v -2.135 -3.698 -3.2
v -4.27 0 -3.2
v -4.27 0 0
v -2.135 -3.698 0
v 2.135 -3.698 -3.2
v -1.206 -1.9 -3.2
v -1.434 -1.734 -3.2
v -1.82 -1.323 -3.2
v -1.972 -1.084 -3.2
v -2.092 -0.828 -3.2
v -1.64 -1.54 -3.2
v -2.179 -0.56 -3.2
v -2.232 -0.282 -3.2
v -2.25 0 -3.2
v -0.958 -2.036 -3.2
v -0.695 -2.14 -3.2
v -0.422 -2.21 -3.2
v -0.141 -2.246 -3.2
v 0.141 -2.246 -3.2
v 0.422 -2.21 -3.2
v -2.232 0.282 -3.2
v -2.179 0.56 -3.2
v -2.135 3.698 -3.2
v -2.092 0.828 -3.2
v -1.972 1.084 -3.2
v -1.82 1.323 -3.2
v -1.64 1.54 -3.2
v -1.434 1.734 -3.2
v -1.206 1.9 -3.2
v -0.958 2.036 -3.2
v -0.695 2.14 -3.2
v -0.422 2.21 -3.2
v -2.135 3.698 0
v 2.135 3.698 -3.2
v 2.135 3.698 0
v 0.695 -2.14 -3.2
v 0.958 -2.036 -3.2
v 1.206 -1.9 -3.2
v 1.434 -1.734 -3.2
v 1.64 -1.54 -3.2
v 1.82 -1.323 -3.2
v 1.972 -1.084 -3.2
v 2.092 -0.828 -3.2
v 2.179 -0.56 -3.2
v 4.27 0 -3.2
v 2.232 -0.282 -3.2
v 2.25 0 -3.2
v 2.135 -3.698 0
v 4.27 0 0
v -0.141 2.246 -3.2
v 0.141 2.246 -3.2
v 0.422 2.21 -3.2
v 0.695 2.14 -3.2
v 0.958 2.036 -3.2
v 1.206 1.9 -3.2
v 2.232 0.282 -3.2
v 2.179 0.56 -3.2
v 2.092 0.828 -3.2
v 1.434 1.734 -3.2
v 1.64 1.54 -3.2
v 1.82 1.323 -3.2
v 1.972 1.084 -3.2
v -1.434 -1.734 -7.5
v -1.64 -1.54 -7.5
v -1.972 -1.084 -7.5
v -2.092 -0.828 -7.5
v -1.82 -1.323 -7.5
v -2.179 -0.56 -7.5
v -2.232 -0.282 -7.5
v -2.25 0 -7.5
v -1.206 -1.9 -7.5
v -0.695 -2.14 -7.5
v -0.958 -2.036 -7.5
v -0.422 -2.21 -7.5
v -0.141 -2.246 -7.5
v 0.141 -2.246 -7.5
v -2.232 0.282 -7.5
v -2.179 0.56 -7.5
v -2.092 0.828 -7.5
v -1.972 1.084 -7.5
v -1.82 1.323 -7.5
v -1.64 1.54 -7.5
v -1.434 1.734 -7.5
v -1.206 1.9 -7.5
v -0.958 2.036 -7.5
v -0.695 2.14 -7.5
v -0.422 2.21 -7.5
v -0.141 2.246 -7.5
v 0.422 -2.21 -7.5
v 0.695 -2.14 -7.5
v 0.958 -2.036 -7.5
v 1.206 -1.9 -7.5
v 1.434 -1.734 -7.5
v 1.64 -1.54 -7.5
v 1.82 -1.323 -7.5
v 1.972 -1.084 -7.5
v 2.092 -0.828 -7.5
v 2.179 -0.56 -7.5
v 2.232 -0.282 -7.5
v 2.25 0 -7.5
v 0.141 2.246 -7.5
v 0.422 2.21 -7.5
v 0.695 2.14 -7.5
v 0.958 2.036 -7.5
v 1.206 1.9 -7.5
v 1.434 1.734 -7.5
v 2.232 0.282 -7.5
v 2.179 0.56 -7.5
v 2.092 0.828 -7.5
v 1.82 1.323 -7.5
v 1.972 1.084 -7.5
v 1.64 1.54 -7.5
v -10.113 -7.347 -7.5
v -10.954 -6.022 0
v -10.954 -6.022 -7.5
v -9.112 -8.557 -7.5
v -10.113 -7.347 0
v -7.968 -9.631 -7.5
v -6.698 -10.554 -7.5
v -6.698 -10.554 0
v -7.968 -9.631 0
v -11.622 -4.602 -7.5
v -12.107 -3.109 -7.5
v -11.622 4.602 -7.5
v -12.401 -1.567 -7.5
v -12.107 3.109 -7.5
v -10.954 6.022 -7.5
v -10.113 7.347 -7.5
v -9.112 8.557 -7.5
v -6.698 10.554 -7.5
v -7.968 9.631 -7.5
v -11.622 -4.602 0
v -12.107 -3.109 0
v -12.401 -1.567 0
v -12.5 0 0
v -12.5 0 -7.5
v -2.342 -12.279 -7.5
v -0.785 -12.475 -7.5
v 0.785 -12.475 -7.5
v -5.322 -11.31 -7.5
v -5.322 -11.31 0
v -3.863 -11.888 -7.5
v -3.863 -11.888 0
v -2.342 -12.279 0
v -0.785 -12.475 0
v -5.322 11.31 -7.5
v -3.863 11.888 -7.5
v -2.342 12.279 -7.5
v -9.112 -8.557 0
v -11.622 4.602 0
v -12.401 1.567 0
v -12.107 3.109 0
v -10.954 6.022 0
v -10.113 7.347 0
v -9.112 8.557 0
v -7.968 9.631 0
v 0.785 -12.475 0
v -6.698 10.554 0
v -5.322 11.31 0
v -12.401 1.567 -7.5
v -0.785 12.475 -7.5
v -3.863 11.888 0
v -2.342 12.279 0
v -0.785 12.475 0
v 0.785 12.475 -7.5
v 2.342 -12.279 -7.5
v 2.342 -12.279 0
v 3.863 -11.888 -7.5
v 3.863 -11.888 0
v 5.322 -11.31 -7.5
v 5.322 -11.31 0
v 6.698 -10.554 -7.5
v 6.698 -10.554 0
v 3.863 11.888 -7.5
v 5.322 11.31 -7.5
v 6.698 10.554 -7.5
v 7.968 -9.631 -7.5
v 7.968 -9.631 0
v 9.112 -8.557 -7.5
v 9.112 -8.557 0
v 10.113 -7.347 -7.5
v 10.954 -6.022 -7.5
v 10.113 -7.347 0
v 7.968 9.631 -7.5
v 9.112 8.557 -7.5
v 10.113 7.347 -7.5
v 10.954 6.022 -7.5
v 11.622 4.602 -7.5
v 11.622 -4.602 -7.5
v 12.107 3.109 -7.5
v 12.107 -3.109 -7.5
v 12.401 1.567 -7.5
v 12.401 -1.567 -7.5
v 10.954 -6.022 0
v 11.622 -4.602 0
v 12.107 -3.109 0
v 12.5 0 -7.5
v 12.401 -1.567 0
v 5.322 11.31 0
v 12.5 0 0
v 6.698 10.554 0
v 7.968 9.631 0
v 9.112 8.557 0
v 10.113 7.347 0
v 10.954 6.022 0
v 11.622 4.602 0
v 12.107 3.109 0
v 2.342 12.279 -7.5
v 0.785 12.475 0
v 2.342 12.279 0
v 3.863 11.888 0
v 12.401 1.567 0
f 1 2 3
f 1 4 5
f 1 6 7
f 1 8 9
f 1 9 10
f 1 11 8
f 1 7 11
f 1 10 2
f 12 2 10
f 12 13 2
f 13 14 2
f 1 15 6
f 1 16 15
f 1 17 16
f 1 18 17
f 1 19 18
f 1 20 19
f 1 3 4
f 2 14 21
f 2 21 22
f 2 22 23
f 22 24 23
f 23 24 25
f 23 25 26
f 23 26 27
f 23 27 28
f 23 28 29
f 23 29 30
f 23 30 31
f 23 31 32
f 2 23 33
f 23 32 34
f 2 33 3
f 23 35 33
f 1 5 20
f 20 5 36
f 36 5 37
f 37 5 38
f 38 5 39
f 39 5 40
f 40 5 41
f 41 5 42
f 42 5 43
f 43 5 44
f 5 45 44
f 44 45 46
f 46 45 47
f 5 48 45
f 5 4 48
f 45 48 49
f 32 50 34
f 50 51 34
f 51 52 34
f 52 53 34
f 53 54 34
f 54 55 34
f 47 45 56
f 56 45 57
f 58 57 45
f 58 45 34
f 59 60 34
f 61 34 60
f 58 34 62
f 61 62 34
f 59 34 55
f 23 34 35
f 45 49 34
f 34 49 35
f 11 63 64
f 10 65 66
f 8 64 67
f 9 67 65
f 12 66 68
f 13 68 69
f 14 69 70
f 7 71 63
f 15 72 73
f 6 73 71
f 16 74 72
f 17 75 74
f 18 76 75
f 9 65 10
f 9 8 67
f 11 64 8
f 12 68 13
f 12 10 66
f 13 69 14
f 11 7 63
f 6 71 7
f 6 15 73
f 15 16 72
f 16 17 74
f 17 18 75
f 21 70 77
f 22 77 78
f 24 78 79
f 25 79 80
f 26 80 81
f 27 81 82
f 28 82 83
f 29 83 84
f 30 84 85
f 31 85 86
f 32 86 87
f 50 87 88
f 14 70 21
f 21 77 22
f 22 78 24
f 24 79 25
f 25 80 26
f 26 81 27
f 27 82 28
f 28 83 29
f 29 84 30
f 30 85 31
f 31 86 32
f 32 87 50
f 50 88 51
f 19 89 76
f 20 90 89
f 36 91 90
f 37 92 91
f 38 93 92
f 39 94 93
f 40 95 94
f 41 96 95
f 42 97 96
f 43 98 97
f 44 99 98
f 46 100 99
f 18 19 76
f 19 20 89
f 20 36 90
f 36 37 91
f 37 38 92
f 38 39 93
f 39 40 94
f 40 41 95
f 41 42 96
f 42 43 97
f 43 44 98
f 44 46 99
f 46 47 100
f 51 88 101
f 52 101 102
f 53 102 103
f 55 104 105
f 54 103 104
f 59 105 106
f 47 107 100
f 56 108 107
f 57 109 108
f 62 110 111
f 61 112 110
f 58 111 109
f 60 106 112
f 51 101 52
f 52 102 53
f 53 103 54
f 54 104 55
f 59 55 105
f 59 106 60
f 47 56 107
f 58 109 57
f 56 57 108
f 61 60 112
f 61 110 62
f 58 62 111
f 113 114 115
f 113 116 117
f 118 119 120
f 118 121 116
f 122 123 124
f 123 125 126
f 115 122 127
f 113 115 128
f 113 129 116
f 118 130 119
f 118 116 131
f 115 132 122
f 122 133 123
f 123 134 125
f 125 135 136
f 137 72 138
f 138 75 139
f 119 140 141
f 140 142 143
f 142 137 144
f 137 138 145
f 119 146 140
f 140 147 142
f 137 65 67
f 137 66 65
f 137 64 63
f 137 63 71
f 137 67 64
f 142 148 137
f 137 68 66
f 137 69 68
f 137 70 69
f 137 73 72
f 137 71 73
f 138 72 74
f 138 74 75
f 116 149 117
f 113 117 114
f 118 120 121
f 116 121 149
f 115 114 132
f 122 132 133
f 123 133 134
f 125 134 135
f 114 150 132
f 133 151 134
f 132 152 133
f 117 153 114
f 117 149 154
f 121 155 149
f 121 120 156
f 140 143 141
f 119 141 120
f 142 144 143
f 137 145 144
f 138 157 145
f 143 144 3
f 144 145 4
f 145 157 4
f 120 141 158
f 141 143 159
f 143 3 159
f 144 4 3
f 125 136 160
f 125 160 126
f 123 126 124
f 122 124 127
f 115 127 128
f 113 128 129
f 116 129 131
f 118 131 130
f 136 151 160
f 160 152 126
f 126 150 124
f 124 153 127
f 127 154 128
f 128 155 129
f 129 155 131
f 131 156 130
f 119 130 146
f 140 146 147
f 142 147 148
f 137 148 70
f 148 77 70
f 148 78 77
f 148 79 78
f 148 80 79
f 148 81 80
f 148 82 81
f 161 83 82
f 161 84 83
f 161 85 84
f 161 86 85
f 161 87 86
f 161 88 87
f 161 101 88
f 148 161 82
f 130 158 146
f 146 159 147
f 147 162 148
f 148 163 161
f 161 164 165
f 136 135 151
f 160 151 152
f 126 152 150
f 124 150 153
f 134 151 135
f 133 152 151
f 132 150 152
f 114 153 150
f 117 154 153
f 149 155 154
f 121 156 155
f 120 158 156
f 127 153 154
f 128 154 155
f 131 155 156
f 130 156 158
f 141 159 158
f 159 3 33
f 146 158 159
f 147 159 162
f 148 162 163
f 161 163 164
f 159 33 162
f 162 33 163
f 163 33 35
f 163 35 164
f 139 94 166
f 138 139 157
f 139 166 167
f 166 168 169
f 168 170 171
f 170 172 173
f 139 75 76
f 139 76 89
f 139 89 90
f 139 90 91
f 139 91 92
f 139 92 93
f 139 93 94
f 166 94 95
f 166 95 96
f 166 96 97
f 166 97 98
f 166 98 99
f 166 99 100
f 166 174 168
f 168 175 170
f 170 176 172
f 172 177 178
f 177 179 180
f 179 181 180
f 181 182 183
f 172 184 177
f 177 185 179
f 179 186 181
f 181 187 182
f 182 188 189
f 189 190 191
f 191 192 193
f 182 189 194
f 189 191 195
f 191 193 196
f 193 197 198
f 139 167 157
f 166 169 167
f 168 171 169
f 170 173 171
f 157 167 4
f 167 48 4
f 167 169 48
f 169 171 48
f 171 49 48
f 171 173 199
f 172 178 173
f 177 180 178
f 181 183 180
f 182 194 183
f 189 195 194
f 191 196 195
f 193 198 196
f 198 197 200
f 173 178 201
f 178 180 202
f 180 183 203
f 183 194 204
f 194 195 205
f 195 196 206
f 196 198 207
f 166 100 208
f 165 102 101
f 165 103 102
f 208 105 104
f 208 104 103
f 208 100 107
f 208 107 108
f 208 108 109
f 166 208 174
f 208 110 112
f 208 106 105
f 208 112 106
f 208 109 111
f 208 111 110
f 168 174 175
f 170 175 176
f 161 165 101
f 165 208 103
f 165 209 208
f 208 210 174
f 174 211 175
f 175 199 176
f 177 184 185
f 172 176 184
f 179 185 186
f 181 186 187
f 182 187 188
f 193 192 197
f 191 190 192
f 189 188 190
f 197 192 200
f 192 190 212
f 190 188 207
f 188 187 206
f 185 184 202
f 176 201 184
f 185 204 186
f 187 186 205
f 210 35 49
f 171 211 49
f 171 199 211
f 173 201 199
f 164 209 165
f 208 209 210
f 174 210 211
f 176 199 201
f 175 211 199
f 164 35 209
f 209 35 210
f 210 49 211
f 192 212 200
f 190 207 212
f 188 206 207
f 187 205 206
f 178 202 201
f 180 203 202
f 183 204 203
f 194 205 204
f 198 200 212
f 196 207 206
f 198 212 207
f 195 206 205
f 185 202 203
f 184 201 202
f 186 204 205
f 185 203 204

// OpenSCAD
$fn = 50;

difference() {
	union() {
		translate(v = [0, 0, -7.5]) {
			cylinder(h = 7.5, r = 12.5);
		}
	}
	union() {
		translate(v = [0, 0, 0]) {
			rotate(a = [0, 0, 0]) {
				difference() {
					union() {
						translate(v = [0, 0, -3.2]) {
							linear_extrude(height = 3.2) {
								polygon(points = [[4.2698, 0.0], [2.1349000000000005, 3.697755269078796], [-2.134899999999999, 3.6977552690787965], [-4.2698, 5.228996902999369e-16], [-2.134900000000002, -3.6977552690787956], [2.1348999999999974, -3.697755269078798]]);
							}
						}
					}
					union();
				}
			}
		}
		#translate(v = [0, 0, -100.0]) {
			cylinder(h = 200, r = 2.25);
		}
	}
}
